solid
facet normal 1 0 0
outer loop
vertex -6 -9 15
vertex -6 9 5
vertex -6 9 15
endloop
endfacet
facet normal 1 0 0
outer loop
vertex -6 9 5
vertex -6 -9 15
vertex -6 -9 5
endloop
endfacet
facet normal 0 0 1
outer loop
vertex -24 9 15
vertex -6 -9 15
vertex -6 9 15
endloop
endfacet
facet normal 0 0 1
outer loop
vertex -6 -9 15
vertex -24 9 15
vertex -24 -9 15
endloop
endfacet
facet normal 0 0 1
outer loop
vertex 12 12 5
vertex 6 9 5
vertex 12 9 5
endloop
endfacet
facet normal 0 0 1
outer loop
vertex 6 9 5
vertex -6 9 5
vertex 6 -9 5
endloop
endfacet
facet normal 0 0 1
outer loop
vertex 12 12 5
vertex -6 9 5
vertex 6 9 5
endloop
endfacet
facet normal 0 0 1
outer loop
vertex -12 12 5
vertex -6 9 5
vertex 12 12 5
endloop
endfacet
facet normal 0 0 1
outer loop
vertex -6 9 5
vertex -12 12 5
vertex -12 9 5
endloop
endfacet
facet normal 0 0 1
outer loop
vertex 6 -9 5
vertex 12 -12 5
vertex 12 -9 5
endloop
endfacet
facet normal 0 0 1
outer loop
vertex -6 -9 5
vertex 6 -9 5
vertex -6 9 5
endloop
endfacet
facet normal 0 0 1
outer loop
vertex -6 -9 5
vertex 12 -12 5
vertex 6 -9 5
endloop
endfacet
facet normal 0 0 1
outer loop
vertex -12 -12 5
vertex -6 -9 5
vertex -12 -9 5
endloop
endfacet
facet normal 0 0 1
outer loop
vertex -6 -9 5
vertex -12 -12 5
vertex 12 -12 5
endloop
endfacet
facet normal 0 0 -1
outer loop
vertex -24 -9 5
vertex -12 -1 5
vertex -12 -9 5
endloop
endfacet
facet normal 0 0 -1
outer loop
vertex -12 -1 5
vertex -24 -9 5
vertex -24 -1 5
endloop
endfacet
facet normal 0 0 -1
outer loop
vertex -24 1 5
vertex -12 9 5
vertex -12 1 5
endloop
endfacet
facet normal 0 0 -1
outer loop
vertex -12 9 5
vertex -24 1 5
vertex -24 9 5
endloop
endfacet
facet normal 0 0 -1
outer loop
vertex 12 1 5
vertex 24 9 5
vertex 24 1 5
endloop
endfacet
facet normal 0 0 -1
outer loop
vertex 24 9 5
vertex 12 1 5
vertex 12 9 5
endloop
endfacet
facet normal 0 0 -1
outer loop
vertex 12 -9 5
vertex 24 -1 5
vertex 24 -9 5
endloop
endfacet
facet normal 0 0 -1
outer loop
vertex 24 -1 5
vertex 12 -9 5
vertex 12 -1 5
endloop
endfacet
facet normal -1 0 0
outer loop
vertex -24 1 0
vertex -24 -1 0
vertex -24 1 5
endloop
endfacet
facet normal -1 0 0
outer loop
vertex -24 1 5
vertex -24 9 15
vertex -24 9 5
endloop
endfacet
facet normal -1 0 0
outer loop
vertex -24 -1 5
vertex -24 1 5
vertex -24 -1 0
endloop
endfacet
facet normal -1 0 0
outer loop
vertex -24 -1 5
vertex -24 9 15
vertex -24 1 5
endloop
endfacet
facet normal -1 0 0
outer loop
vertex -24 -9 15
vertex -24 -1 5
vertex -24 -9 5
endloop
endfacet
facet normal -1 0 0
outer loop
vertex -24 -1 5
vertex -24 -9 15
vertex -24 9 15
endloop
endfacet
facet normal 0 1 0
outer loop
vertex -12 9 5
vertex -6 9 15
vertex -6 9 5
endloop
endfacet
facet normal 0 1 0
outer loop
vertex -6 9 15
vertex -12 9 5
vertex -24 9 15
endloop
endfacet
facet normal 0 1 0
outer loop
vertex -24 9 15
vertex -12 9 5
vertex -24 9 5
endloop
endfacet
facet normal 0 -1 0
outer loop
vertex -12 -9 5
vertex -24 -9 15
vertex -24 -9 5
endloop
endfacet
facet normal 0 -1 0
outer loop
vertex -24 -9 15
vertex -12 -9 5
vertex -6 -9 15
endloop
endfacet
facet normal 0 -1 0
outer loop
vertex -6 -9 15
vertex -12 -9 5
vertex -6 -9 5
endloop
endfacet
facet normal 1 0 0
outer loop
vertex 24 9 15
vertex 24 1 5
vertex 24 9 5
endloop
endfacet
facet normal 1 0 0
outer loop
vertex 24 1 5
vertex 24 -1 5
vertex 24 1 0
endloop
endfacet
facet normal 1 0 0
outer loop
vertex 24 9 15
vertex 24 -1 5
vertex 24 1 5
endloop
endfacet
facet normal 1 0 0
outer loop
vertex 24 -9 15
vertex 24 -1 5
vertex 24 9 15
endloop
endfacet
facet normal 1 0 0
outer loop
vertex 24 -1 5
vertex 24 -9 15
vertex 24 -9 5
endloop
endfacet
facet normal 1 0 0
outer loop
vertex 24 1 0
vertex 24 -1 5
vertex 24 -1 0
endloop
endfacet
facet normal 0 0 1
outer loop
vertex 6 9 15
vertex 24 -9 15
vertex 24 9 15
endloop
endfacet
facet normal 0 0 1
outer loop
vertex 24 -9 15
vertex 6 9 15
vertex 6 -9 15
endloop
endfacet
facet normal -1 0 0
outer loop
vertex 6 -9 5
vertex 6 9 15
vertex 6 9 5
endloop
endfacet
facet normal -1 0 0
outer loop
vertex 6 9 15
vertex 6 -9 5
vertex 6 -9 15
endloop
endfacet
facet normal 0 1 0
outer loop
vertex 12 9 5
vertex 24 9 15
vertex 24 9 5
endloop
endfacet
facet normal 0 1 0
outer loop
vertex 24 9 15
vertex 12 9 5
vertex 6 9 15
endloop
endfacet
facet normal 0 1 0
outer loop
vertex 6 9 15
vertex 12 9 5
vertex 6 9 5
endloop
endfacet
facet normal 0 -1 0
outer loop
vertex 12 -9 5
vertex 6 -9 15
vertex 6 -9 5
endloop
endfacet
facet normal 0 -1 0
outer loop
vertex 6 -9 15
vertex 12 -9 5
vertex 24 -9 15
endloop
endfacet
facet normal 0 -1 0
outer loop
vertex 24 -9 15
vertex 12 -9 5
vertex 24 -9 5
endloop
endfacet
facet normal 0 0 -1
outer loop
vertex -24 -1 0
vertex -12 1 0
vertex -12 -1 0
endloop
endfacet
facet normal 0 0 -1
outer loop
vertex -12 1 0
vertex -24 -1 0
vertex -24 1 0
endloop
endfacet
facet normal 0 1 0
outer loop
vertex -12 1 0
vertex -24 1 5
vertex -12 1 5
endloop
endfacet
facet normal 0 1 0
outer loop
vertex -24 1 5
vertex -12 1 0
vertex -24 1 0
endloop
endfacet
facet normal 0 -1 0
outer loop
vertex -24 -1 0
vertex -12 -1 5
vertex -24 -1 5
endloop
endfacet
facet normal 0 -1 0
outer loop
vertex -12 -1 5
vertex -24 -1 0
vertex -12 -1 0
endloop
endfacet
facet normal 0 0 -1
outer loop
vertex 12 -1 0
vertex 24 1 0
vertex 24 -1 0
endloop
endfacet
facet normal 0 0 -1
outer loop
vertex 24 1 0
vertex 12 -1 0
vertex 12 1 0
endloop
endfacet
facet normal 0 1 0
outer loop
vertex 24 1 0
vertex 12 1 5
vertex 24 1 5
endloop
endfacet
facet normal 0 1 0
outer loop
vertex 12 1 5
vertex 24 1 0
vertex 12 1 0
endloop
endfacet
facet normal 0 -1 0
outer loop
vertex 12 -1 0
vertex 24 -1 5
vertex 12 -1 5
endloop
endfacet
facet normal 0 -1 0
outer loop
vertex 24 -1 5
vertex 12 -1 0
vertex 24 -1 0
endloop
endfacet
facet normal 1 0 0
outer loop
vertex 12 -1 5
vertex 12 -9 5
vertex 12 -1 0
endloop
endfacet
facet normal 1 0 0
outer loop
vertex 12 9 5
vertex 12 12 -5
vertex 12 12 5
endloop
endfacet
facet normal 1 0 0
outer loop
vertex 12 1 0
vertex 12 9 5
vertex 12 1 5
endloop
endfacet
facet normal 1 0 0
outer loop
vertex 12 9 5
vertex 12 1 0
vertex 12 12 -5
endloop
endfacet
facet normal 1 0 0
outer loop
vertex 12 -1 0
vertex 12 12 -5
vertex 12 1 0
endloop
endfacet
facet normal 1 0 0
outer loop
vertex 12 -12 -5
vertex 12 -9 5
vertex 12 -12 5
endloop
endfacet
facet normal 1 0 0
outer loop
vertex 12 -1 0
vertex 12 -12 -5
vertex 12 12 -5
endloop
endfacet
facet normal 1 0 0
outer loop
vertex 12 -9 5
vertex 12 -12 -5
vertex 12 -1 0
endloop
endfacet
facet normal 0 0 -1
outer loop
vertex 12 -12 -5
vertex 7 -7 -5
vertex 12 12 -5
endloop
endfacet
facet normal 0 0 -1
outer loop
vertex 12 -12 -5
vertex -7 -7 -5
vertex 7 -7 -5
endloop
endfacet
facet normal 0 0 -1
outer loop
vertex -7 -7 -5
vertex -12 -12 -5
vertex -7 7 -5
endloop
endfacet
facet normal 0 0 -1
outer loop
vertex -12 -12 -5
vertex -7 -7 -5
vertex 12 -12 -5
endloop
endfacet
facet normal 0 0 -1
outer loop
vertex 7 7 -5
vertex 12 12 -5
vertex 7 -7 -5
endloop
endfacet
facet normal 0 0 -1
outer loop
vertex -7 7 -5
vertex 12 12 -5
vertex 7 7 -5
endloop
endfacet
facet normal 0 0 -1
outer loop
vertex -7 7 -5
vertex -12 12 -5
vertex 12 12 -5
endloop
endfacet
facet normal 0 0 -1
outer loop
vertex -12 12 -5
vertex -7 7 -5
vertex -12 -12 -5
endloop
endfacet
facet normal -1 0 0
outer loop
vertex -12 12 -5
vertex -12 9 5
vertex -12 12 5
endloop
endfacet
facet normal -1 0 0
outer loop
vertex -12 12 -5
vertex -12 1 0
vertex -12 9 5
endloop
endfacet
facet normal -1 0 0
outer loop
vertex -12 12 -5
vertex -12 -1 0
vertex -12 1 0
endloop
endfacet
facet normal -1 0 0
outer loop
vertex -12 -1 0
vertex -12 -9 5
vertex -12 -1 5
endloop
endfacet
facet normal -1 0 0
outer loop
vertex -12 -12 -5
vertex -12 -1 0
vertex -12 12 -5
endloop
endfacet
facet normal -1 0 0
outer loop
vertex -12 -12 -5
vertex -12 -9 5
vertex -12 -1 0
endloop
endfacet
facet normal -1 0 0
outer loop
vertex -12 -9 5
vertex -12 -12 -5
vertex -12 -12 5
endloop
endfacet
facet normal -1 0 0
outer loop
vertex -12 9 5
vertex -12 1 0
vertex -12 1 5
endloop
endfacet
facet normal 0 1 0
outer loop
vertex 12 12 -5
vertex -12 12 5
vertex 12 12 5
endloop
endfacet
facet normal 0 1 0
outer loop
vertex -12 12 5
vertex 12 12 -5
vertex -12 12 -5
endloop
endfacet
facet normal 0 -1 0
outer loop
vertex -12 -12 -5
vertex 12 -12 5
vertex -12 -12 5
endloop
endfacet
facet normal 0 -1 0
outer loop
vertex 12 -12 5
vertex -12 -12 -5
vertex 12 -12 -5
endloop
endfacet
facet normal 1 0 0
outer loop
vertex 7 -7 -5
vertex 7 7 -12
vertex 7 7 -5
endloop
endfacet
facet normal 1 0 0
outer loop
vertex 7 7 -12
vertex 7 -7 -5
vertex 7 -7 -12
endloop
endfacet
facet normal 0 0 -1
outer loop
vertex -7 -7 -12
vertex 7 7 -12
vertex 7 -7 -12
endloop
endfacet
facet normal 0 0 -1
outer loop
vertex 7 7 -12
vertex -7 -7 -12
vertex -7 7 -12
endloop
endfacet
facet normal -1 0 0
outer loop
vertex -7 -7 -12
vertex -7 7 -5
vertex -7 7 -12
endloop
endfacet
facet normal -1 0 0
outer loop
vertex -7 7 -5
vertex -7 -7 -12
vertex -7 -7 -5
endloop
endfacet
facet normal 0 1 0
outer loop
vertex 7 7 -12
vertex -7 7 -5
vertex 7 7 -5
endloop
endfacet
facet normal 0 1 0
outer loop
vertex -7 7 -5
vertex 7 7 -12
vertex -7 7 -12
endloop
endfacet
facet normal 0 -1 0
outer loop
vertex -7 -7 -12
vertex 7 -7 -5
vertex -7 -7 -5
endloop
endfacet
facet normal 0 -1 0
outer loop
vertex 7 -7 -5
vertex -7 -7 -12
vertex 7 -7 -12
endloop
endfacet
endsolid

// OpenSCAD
// Dimensions for each component
module central_block() {
    cube([24, 24, 10], center = true); // Resized to match original model dimensions
}

module side_block() {
    cube([18, 18, 10], center = true); // Resized to match original model dimensions
}

module spacer_block() {
    cube([18, 2, 10], center = true); // Adjusted dimensions to match original model
}

module connector_block() {
    cube([14, 14, 8], center = true); // Simplified and resized to match original model
}

// Assembly of the model
module flexible_coupling() {
    // Layer 1: Side blocks
    translate([-15, 0, 10]) side_block(); // Side block 1 repositioned closer to central block
    translate([15, 0, 10]) side_block();  // Side block 2 repositioned closer to central block

    // Layer 2: Spacer blocks
    translate([-15, 0, 5]) spacer_block(); // Spacer block 1 added and positioned correctly
    translate([15, 0, 5]) spacer_block();  // Spacer block 2 added and positioned correctly

    // Layer 3: Central block
    translate([0, 0, 0]) central_block(); // Central block resized and repositioned

    // Layer 4: Connector block
    translate([0, 0, -8]) connector_block(); // Connector block simplified and repositioned
}

// Render the model
flexible_coupling();
